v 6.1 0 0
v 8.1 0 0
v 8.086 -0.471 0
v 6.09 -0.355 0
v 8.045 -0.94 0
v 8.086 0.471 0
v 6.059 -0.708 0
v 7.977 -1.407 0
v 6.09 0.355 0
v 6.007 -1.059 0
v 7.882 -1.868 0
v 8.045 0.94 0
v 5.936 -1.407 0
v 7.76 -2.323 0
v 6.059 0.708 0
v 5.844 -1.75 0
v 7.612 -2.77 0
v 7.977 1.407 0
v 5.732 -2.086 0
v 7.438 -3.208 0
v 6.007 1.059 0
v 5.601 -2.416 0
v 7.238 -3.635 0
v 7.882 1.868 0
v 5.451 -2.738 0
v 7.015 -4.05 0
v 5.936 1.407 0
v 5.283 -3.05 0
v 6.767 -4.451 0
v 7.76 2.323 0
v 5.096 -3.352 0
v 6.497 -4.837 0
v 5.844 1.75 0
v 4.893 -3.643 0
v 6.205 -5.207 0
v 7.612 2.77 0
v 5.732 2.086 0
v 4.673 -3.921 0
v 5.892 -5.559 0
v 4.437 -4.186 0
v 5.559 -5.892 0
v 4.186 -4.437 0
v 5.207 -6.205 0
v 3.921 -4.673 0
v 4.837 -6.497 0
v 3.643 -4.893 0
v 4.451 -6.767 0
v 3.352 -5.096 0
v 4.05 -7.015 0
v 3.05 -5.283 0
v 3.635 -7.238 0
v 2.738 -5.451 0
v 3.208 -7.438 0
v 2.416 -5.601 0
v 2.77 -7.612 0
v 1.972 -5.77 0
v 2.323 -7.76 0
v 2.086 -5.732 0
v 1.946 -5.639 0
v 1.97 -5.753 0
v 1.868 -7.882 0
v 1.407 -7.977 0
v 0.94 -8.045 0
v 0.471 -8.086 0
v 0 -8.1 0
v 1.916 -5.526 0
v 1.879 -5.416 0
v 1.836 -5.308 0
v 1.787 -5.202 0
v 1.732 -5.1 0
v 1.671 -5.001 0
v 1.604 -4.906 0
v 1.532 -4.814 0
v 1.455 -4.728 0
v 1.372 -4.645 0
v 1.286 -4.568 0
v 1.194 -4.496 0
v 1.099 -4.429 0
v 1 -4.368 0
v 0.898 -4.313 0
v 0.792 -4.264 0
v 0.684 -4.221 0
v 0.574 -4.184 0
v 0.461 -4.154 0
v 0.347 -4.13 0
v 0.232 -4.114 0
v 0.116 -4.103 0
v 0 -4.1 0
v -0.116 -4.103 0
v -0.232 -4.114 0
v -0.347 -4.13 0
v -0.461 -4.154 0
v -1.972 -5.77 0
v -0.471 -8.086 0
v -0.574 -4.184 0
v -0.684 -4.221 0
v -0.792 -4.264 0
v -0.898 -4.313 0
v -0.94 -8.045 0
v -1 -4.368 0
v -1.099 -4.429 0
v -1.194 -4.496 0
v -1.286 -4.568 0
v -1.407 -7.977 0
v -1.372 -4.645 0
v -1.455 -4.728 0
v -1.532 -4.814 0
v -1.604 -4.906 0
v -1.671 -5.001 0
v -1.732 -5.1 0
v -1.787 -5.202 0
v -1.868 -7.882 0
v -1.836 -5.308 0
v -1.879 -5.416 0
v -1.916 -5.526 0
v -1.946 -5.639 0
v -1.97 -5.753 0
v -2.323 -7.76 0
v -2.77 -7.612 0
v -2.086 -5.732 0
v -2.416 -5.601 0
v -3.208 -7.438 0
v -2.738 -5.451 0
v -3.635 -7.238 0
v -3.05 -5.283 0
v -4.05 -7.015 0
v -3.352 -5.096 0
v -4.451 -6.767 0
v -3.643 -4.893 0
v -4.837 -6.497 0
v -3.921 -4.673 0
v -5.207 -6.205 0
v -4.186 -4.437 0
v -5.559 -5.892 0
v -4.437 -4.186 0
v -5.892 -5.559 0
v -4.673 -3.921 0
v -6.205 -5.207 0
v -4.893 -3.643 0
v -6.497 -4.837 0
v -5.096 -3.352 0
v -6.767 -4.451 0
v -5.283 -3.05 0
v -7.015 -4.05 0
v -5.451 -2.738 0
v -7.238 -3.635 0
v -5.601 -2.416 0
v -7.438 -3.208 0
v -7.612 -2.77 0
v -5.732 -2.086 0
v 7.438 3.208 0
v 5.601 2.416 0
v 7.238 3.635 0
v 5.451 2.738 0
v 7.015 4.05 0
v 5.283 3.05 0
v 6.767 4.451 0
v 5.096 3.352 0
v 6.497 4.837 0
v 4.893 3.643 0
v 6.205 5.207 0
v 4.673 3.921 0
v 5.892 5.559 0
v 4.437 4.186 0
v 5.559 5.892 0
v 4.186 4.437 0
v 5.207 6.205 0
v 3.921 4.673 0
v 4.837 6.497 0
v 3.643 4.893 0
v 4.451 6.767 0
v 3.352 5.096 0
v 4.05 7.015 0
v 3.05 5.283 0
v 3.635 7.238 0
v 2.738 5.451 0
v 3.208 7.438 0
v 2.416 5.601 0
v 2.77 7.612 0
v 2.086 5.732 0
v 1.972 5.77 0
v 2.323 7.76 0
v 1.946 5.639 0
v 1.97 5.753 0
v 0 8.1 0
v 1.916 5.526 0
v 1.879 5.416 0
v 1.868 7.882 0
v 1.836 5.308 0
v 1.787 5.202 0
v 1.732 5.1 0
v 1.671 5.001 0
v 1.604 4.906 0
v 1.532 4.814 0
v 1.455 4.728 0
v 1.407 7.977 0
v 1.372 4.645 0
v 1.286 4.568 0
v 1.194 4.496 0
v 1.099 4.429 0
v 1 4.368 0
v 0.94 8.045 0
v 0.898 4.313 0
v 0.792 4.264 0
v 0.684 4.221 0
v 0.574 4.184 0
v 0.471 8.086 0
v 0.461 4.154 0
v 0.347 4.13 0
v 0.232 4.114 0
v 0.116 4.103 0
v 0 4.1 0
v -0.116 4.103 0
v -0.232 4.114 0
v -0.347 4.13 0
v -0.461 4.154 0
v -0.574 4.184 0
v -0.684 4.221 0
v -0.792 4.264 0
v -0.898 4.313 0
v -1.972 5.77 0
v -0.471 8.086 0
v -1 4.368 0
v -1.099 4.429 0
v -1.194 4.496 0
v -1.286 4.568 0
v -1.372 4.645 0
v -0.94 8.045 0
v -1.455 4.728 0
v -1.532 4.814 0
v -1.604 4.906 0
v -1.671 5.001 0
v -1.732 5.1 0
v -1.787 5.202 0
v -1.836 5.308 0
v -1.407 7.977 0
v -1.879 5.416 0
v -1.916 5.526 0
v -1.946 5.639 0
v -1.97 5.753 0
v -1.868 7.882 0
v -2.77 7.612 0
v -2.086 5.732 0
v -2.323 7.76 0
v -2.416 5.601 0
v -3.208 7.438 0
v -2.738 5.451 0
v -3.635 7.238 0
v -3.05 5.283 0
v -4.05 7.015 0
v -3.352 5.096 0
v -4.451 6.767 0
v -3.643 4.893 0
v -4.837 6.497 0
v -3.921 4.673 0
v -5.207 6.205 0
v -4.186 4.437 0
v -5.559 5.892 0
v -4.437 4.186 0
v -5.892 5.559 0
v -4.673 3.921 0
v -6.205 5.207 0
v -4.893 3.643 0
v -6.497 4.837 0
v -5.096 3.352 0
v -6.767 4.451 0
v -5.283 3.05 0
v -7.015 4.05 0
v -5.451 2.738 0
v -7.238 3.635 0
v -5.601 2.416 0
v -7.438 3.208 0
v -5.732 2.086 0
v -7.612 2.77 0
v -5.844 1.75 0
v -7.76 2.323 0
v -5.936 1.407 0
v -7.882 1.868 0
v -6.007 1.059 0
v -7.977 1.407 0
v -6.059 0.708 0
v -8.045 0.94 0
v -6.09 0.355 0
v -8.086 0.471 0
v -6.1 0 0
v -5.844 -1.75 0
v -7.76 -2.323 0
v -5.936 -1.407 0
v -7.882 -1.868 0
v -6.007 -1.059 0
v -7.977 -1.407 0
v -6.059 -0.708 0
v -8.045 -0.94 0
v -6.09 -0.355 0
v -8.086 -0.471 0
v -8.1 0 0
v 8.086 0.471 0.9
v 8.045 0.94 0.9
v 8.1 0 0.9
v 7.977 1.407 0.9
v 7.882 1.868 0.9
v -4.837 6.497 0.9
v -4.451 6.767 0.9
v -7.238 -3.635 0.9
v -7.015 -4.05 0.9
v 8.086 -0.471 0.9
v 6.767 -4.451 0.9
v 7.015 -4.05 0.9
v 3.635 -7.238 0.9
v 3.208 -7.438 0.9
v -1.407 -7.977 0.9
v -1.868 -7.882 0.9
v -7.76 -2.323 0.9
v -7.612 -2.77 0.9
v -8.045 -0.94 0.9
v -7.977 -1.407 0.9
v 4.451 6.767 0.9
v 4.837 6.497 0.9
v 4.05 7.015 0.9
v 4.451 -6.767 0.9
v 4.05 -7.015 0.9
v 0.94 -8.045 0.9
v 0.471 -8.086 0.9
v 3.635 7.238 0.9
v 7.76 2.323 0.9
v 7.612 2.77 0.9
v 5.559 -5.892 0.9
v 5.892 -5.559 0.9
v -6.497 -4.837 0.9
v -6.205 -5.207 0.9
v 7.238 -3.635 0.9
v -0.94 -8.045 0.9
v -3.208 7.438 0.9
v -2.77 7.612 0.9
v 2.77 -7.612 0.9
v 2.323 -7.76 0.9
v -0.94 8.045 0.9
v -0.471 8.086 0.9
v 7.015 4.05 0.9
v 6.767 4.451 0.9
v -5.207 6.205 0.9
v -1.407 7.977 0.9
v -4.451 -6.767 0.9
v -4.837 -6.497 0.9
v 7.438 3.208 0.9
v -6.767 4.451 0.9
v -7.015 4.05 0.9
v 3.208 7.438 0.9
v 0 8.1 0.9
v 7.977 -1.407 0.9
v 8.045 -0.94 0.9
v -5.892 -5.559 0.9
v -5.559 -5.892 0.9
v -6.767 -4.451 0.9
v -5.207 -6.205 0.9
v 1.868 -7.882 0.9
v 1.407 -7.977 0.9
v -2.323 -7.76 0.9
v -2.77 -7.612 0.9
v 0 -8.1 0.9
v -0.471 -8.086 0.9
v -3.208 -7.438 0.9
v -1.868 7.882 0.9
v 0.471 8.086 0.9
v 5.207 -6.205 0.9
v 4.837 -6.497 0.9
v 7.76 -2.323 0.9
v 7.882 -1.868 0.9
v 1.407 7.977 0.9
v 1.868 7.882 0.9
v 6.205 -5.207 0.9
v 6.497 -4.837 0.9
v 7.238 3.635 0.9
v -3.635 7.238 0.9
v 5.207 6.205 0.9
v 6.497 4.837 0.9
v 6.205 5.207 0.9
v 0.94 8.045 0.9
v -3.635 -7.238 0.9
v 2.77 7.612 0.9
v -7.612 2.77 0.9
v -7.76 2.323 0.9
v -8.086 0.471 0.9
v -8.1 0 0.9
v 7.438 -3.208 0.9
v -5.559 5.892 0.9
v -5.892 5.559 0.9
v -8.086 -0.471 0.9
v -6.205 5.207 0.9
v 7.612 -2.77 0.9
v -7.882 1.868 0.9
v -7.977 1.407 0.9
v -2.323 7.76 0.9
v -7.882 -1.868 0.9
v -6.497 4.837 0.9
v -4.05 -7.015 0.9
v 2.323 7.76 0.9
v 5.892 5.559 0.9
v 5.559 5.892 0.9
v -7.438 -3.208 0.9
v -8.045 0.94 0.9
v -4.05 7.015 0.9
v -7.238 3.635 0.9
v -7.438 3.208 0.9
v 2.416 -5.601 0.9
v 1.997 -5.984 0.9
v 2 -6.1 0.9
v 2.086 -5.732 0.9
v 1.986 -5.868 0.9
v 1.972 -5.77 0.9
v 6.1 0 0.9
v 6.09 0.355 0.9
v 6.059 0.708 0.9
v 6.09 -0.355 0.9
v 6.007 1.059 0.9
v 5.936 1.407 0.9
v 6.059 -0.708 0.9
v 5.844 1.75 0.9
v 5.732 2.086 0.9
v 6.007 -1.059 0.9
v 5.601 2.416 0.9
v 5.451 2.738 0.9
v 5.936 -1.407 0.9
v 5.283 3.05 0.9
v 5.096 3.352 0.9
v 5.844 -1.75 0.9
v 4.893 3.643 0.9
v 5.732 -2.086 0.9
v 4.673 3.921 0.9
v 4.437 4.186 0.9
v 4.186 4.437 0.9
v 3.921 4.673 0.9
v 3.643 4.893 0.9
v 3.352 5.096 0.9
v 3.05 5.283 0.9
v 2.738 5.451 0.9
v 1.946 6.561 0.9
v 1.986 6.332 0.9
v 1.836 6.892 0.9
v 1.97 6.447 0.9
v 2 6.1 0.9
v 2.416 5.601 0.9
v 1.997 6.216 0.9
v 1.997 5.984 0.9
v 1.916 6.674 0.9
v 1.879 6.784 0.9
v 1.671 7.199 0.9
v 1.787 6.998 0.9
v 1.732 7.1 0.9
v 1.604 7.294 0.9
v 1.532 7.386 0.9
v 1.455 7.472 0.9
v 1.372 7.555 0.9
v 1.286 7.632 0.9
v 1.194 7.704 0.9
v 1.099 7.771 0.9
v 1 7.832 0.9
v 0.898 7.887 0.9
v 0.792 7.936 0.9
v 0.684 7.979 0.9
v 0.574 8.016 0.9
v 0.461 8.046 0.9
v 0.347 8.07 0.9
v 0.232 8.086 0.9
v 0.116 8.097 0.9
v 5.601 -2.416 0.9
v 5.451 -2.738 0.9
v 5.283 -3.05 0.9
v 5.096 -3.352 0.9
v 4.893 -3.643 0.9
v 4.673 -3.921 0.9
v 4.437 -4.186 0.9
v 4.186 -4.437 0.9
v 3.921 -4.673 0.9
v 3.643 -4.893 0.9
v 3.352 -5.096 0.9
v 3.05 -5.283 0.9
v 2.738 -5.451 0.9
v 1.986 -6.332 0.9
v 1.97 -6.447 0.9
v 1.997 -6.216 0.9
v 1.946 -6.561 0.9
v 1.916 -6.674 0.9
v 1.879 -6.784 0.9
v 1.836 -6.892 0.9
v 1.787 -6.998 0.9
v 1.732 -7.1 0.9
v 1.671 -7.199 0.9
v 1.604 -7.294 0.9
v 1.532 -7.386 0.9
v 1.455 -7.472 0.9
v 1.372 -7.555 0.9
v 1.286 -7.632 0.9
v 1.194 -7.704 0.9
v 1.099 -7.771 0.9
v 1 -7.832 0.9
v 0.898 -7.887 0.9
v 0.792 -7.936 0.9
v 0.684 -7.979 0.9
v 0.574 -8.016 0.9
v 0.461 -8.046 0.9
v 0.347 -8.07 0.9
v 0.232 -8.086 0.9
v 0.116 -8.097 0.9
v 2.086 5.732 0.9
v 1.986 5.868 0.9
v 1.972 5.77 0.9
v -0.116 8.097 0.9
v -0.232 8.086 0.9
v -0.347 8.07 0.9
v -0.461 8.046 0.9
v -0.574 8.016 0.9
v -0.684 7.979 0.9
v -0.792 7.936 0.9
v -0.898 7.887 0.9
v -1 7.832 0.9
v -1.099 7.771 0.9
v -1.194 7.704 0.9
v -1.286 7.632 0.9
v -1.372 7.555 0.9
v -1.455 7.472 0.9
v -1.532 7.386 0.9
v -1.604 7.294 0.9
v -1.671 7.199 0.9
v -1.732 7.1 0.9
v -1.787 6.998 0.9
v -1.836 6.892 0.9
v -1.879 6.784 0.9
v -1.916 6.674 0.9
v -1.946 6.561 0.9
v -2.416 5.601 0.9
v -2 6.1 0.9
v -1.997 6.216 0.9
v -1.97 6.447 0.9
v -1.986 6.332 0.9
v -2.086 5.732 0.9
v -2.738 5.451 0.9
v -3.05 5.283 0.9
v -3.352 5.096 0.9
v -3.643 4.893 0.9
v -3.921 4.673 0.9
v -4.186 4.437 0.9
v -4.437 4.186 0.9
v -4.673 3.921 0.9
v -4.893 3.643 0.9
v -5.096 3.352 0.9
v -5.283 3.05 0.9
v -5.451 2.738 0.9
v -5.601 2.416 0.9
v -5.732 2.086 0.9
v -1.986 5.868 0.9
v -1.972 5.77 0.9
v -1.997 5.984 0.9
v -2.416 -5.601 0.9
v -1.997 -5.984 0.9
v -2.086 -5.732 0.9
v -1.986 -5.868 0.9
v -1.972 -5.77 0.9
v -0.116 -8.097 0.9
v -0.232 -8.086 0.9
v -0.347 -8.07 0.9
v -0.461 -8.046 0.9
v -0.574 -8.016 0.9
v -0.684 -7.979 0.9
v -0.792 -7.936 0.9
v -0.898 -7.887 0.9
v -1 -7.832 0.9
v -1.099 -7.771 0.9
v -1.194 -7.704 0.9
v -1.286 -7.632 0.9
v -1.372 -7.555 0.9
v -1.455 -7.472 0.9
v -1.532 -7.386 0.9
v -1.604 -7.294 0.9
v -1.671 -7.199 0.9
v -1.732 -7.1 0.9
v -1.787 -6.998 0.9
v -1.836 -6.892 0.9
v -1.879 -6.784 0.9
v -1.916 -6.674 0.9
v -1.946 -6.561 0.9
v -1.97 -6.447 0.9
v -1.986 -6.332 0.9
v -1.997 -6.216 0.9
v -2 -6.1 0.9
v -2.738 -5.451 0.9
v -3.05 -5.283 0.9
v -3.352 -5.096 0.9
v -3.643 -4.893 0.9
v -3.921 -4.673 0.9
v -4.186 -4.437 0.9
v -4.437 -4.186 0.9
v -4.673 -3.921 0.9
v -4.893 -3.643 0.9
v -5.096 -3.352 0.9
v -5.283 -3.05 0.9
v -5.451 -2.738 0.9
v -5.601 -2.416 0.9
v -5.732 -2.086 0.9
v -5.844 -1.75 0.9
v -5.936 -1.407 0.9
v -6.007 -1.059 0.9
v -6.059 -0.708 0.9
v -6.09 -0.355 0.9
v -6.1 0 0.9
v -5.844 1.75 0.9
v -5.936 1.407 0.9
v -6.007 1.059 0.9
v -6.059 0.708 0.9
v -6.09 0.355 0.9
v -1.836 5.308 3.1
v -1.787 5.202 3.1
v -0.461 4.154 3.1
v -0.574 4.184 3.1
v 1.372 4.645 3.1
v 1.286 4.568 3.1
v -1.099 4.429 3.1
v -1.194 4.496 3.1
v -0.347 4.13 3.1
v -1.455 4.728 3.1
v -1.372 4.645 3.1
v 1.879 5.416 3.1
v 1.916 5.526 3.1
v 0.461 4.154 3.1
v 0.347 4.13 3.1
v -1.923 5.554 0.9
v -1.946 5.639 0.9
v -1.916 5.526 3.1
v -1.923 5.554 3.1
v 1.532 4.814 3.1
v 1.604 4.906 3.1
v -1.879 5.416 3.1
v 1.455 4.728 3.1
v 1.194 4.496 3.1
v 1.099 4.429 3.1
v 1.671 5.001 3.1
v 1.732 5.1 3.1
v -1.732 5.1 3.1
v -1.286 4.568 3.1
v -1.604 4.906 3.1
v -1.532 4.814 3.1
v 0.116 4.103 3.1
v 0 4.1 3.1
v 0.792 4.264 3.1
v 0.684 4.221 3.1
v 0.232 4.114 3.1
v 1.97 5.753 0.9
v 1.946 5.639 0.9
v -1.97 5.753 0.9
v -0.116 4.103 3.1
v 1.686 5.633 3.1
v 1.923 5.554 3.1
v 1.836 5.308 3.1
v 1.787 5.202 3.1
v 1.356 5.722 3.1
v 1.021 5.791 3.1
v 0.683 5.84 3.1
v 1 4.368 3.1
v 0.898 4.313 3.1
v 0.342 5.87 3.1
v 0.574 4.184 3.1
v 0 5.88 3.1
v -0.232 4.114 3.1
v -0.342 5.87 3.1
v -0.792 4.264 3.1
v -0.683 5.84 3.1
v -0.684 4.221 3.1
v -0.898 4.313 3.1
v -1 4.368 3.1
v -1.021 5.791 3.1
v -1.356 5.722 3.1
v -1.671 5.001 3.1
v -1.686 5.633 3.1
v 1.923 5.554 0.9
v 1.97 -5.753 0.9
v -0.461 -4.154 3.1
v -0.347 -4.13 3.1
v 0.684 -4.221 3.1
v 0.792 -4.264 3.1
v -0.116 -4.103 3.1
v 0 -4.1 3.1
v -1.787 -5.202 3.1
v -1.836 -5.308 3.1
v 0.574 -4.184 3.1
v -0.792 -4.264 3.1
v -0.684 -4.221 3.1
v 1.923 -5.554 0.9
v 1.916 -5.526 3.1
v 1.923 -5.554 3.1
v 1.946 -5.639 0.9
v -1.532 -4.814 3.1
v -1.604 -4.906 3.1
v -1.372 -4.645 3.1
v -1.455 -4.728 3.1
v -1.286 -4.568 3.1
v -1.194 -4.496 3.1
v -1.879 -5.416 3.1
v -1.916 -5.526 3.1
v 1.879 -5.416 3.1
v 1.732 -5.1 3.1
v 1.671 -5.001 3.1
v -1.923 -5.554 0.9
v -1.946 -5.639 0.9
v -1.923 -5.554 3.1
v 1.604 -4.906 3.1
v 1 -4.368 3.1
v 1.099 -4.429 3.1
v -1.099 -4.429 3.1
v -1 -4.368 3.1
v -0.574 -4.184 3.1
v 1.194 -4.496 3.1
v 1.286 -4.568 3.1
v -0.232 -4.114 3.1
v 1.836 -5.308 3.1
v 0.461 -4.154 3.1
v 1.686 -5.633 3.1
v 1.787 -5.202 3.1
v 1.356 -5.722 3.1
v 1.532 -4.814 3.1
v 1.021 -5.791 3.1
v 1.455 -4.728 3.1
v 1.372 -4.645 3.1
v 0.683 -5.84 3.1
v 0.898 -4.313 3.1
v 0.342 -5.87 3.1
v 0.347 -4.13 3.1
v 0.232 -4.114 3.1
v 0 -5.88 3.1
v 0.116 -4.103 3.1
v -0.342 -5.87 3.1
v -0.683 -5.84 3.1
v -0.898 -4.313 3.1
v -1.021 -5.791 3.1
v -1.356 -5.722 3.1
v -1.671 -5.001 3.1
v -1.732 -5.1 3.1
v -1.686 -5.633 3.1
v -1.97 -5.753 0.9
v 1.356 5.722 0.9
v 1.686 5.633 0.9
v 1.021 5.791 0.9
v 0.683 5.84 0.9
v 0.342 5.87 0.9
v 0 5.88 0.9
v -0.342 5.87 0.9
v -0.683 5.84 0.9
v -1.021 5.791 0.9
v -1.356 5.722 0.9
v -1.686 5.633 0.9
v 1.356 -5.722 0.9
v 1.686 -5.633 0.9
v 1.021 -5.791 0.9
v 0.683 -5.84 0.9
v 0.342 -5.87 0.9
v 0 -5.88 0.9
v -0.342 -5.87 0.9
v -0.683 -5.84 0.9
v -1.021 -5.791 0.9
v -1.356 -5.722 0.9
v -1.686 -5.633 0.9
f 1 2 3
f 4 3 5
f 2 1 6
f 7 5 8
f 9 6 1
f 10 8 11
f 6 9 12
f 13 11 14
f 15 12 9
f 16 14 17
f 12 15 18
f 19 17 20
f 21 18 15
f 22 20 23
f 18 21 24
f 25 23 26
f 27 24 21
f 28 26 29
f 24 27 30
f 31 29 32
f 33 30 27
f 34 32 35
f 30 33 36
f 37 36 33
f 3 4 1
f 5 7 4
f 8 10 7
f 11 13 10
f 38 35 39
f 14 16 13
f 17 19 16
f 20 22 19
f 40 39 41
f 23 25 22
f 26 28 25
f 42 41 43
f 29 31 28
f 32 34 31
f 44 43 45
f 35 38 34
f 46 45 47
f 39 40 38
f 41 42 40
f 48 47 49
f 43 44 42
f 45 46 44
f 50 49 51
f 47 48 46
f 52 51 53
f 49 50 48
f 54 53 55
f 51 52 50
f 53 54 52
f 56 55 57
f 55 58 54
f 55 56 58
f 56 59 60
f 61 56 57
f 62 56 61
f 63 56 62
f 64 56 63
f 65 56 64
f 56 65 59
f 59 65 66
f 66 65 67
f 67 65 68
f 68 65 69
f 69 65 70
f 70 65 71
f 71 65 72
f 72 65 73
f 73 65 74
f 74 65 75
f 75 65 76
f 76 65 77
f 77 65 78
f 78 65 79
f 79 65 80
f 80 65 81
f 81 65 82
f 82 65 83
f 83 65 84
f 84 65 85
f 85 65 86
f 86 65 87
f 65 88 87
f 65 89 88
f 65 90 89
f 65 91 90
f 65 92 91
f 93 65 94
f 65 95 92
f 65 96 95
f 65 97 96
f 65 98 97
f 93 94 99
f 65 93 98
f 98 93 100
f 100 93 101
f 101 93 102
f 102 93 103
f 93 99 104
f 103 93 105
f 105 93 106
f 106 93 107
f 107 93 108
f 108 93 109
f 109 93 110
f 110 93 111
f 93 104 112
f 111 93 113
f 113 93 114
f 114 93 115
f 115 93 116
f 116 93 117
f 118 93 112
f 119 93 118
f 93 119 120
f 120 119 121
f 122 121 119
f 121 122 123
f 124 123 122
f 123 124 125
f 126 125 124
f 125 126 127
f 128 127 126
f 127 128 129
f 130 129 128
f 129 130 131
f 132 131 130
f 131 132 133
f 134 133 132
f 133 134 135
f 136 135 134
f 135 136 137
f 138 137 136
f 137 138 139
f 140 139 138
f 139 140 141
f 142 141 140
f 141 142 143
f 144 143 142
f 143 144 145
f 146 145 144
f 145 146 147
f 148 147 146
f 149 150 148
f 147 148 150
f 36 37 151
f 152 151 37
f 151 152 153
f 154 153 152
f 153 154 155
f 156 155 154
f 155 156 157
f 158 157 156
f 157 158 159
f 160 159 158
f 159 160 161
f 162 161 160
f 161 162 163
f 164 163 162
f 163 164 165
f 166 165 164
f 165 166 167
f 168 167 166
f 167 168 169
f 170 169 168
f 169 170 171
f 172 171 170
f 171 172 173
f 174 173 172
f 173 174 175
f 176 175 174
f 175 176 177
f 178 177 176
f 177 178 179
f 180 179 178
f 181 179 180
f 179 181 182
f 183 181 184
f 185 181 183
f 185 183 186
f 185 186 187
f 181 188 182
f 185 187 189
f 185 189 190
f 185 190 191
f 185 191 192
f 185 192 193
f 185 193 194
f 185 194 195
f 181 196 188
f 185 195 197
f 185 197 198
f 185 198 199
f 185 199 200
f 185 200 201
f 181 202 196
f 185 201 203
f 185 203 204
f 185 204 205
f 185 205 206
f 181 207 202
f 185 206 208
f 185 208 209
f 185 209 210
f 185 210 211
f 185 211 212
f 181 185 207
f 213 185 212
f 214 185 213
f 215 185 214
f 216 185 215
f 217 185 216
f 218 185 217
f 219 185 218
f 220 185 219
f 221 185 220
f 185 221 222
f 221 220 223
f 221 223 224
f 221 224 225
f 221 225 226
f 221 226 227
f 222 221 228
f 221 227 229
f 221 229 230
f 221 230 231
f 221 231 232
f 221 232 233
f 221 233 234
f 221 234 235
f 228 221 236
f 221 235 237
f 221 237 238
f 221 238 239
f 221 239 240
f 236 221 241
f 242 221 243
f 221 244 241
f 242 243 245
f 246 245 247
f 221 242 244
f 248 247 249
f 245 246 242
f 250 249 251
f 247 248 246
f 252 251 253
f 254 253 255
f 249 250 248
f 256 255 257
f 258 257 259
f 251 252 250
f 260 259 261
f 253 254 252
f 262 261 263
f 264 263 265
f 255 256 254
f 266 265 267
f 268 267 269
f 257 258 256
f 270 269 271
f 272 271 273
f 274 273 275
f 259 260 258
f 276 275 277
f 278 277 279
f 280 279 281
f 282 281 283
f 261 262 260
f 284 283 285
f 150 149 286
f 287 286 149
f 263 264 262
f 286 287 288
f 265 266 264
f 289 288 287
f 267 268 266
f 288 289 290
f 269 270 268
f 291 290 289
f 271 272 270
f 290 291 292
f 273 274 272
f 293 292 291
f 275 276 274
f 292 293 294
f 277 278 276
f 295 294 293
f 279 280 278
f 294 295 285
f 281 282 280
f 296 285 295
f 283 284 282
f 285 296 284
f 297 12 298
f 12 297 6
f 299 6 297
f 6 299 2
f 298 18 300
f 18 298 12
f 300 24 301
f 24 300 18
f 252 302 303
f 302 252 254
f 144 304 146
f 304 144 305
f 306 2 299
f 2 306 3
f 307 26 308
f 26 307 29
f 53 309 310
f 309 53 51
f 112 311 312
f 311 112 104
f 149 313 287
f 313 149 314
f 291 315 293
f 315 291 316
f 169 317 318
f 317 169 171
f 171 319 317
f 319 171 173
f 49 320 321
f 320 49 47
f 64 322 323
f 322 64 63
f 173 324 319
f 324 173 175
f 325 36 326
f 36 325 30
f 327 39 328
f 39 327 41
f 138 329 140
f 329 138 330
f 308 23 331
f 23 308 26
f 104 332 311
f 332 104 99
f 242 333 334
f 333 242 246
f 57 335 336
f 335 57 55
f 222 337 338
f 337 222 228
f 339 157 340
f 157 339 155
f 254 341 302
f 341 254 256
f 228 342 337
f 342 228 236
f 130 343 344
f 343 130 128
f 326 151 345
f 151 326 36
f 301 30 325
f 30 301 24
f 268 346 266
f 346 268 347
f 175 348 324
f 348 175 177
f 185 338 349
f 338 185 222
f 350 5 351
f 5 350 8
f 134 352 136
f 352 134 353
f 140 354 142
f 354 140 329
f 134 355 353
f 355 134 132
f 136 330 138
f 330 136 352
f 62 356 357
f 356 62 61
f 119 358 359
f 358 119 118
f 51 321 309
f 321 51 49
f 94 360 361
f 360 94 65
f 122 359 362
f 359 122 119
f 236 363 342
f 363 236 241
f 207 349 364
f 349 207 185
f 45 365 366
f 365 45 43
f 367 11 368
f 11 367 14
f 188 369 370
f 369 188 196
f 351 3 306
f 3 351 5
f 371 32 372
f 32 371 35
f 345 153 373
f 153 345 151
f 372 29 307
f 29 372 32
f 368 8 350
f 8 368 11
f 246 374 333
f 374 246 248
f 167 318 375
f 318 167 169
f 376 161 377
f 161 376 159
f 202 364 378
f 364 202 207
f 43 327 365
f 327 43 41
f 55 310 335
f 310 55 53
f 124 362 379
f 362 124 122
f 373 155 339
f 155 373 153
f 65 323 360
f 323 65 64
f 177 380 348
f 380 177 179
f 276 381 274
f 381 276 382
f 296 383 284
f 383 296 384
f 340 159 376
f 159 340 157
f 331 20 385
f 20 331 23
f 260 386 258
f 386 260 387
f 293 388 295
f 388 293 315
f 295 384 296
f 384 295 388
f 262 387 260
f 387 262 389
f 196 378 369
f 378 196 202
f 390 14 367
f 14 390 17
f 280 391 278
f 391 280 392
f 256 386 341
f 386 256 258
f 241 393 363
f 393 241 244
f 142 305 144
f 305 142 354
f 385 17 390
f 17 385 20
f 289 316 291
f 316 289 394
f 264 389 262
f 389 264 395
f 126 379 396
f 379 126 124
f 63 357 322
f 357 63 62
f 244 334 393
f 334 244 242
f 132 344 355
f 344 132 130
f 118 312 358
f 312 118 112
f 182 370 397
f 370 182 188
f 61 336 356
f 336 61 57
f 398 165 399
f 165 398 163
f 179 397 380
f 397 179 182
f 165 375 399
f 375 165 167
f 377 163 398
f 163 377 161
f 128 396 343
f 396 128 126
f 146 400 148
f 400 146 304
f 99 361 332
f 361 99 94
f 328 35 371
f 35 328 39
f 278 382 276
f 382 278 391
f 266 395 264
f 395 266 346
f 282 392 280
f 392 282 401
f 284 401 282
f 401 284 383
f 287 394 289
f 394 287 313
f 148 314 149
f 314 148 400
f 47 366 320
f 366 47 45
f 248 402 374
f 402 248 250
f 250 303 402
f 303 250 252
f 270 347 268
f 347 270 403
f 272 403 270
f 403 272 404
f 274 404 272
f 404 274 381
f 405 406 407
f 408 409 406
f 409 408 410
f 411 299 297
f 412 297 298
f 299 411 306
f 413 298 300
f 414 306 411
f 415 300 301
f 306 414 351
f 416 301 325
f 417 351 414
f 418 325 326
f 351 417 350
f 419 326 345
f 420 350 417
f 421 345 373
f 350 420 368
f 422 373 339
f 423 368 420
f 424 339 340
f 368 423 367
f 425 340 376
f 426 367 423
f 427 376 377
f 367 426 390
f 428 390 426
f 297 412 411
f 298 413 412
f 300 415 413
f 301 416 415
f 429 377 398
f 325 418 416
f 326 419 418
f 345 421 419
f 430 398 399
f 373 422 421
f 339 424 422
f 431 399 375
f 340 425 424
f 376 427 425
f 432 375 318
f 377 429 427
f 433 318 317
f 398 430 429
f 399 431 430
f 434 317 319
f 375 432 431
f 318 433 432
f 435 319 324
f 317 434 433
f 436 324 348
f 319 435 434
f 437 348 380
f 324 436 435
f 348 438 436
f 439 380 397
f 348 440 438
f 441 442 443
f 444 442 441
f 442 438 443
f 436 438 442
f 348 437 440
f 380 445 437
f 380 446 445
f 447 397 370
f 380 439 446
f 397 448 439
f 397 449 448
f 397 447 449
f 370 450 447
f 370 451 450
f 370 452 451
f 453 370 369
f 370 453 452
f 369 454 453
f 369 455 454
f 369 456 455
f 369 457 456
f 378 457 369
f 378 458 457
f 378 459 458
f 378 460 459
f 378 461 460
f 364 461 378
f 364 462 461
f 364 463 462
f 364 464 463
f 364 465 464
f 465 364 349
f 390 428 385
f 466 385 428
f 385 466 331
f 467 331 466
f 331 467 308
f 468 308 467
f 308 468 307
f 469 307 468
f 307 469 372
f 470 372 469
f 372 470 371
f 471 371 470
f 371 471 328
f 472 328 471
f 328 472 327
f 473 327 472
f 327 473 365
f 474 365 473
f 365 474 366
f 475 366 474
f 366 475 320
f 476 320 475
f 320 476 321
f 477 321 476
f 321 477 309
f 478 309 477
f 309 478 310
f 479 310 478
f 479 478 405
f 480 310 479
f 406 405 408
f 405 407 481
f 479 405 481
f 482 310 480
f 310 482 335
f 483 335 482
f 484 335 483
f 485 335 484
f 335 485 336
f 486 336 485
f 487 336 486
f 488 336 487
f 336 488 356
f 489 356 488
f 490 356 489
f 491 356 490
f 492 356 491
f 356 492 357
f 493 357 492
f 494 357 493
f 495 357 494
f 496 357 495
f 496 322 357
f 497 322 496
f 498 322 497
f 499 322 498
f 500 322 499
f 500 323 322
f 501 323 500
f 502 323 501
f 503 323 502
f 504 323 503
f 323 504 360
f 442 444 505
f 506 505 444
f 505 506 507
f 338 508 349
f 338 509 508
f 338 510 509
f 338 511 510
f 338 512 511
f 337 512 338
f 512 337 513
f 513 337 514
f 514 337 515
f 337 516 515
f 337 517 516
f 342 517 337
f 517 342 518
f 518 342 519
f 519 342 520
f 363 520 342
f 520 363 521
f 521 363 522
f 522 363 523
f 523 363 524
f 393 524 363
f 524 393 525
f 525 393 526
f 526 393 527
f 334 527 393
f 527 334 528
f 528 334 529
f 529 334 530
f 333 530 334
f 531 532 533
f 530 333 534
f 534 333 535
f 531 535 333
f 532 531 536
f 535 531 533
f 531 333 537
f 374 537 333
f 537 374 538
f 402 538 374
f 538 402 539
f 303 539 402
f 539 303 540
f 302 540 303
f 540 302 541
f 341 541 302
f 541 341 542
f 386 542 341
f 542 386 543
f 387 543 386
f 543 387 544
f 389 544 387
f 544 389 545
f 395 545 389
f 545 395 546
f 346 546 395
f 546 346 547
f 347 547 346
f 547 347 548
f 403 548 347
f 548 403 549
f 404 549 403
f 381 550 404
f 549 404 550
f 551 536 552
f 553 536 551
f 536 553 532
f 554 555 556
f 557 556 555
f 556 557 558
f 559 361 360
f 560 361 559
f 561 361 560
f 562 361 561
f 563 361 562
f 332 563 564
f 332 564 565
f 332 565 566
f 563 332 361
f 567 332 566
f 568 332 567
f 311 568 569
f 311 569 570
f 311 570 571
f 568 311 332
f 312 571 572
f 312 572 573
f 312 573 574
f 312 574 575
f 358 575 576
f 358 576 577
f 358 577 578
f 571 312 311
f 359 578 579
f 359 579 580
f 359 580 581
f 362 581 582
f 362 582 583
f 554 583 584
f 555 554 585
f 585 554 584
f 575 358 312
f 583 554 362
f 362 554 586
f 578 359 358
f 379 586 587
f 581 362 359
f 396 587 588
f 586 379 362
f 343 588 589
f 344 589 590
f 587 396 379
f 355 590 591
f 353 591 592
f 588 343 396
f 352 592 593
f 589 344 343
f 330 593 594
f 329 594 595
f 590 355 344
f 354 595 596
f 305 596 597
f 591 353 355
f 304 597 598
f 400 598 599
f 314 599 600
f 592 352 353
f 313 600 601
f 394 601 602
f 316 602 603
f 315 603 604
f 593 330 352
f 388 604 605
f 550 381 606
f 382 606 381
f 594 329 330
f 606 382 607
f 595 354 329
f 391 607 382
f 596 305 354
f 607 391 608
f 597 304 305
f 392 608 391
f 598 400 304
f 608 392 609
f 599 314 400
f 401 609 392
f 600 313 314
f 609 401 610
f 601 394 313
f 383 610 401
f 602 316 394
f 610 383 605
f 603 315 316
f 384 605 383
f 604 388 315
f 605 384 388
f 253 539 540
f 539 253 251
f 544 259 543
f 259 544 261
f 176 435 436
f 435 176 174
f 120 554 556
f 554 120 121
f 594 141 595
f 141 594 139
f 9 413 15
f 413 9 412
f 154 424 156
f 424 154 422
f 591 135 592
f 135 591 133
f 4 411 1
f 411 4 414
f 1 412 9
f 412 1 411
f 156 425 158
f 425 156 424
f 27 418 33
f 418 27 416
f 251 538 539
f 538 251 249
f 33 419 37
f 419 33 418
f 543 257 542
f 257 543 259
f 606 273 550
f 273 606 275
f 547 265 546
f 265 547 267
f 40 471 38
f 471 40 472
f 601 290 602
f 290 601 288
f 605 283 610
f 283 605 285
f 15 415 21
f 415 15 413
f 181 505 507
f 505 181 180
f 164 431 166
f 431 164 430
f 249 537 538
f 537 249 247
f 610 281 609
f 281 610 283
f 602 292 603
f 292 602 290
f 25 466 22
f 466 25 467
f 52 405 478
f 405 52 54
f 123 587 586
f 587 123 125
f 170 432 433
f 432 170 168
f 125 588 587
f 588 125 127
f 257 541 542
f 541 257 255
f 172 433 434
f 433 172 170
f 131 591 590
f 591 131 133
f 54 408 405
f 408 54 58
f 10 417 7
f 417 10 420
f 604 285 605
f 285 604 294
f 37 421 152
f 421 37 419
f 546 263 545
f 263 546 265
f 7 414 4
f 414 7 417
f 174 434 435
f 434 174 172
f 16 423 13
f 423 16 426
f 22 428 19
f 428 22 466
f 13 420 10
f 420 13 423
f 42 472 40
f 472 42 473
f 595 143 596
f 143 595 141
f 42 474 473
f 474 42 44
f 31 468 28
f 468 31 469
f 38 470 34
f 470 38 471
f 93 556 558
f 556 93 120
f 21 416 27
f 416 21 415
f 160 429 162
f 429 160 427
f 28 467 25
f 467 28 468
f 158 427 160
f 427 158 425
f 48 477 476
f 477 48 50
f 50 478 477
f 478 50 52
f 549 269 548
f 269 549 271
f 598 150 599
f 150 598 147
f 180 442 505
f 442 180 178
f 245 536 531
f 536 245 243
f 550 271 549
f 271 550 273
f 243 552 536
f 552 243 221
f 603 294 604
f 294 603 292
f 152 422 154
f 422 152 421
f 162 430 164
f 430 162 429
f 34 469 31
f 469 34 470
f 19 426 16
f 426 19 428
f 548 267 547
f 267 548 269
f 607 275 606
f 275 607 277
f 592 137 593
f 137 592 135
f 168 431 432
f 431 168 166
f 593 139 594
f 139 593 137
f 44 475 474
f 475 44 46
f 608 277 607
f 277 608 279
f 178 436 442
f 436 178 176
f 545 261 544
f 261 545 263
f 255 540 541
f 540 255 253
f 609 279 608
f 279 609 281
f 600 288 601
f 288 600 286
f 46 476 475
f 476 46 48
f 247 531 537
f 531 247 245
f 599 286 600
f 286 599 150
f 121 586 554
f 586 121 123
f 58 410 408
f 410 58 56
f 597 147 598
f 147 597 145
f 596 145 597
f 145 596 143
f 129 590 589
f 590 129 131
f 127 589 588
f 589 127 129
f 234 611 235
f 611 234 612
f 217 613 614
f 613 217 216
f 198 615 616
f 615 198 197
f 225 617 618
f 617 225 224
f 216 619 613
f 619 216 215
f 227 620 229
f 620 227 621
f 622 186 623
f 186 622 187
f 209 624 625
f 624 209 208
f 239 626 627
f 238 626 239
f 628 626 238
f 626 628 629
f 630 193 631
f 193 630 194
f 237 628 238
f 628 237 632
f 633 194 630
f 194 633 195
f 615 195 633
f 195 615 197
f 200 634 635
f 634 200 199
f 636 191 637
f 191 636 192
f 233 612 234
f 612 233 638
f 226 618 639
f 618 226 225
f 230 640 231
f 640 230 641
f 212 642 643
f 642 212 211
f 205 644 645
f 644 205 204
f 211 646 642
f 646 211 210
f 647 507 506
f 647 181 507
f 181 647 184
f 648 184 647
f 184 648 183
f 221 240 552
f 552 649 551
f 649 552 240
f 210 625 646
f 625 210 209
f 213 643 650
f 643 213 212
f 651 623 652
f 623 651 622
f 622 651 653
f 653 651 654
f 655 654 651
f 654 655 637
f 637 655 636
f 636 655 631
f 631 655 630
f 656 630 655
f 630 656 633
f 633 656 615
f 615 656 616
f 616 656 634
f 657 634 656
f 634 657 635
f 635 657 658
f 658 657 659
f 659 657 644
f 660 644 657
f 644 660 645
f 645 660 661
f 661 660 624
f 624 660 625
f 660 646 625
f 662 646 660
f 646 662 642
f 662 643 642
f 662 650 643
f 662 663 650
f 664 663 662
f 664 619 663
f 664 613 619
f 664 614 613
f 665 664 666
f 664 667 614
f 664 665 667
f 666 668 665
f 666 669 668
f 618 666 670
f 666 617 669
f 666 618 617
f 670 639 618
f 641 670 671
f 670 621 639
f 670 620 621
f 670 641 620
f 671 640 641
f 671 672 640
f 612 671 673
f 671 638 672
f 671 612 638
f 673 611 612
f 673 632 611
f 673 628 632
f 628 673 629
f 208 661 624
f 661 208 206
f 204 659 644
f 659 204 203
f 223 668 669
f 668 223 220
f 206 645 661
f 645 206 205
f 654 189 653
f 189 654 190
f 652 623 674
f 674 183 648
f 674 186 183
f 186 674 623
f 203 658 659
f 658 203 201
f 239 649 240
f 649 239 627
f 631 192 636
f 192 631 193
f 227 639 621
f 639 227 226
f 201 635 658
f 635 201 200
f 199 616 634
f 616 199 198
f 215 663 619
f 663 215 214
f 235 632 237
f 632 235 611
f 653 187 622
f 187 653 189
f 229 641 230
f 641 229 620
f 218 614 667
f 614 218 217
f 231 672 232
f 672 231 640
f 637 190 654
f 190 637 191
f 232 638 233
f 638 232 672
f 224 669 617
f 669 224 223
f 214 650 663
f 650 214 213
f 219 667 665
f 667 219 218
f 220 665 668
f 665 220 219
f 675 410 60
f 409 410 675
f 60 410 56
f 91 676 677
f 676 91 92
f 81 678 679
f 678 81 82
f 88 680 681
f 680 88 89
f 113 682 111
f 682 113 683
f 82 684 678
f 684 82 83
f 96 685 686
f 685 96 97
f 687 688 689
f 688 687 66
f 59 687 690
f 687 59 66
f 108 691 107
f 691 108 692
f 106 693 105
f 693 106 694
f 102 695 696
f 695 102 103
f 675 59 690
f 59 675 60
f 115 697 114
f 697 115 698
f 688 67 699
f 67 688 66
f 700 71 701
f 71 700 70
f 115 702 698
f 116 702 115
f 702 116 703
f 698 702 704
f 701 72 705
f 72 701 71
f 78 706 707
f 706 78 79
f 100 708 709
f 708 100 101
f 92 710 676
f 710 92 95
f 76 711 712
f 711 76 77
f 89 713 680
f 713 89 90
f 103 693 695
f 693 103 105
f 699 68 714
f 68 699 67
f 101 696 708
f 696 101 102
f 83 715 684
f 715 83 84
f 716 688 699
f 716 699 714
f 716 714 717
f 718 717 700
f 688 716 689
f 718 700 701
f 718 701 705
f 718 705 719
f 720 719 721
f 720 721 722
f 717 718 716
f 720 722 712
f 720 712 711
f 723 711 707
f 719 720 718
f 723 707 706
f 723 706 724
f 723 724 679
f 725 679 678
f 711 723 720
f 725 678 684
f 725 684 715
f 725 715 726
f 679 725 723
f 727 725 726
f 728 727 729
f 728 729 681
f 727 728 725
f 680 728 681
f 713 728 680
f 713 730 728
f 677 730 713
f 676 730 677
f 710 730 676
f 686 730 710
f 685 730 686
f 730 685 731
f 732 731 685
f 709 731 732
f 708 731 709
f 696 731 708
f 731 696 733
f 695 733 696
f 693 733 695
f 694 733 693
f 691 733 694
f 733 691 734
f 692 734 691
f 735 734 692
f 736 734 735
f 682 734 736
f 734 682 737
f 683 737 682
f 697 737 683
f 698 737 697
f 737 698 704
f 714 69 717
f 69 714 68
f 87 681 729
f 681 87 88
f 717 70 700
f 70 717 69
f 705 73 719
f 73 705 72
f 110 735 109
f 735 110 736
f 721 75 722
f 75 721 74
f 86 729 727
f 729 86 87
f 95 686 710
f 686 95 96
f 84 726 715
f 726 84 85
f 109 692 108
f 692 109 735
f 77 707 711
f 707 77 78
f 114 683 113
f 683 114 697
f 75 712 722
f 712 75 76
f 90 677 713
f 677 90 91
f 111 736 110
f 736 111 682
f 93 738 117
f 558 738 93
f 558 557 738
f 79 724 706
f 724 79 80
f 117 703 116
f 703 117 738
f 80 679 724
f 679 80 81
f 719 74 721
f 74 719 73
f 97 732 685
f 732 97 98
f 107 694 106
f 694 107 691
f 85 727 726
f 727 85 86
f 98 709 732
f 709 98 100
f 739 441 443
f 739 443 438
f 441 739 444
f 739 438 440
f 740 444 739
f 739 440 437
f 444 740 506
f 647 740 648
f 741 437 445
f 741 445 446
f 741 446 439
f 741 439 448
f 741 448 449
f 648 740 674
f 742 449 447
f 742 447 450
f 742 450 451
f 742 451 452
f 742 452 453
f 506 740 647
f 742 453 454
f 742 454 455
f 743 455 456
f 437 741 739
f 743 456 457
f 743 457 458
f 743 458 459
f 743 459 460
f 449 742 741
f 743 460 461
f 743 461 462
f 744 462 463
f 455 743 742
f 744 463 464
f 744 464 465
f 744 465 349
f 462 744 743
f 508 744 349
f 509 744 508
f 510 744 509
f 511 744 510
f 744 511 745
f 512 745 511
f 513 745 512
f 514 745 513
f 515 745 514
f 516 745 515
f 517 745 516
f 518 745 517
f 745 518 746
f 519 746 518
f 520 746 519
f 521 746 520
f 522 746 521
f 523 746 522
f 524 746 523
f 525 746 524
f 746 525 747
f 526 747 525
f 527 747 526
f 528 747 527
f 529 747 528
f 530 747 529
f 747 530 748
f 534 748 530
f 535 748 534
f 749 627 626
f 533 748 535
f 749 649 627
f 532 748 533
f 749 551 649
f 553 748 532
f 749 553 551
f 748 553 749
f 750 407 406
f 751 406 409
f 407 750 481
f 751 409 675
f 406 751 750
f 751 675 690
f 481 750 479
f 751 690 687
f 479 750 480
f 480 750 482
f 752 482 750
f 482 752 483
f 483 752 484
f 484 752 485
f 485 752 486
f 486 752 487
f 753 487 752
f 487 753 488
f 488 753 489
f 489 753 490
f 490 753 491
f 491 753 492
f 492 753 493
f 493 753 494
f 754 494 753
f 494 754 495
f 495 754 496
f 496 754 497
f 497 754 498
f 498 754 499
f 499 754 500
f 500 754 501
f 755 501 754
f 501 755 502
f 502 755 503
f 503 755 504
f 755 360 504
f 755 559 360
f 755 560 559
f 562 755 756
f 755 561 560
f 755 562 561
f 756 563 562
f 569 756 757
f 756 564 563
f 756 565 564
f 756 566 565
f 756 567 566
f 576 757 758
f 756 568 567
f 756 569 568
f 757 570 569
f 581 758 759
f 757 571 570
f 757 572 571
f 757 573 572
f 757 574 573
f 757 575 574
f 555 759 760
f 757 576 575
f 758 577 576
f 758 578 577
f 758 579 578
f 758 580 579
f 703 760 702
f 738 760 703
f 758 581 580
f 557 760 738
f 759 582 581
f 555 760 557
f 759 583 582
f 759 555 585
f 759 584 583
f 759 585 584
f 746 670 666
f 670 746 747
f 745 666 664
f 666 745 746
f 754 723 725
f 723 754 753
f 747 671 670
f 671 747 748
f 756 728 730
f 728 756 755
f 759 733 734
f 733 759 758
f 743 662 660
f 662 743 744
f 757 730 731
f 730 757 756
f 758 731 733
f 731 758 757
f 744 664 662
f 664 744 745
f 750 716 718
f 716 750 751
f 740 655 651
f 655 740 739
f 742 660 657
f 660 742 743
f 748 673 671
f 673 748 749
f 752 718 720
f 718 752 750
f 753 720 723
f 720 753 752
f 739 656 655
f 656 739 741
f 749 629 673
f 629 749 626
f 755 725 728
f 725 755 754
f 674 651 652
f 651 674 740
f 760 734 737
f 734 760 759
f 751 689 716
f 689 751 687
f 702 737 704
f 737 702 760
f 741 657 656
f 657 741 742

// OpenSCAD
//  Characters    Behavior
//     //            ignore, comment
//     $fa           minimum angle
//     *             disable
//     !             show only
//     #             highlight / debug
//     %             transparent / background
// http://www.openscad.org/cheatsheet/index.html

use <MCAD/regular_shapes.scad>

// Globals

convexity = 4;
number_of_fragments = 0.30 * 360;
eps = 0.001;

$fn = number_of_fragments;

nozzle_line_width = 0.4;

inner_diameter = 12.20;
outer_diameter = 16.20;
washer_height =   0.90;
flange_height =   2.20;

post_diameter = 4.00;


// Modules

module washer(outer_diameter, inner_diameter, washer_height)
{
    difference()
    {
        color("red")
        union()
        {
            cylinder(d=outer_diameter, h=washer_height);
        }

        color("blue")
        union()
        {
            scale([1, 1, 1.1])
            translate([0, 0, -eps])
            cylinder(d=inner_diameter, h=washer_height);
        }
    }
}


// Model

difference()
{
    union()
    {
        washer(outer_diameter, inner_diameter, washer_height);

        color("purple")
        {
            translate([0, inner_diameter/2, 0])
            cylinder(d=post_diameter, h=washer_height+flange_height);

            translate([0, -inner_diameter/2, 0])
            cylinder(d=post_diameter, h=washer_height+flange_height);
        }
    }

    translate([0, 0, washer_height])
    scale([1, 1, 1.1])
    washer(2*outer_diameter, inner_diameter-0.44, flange_height);
}
